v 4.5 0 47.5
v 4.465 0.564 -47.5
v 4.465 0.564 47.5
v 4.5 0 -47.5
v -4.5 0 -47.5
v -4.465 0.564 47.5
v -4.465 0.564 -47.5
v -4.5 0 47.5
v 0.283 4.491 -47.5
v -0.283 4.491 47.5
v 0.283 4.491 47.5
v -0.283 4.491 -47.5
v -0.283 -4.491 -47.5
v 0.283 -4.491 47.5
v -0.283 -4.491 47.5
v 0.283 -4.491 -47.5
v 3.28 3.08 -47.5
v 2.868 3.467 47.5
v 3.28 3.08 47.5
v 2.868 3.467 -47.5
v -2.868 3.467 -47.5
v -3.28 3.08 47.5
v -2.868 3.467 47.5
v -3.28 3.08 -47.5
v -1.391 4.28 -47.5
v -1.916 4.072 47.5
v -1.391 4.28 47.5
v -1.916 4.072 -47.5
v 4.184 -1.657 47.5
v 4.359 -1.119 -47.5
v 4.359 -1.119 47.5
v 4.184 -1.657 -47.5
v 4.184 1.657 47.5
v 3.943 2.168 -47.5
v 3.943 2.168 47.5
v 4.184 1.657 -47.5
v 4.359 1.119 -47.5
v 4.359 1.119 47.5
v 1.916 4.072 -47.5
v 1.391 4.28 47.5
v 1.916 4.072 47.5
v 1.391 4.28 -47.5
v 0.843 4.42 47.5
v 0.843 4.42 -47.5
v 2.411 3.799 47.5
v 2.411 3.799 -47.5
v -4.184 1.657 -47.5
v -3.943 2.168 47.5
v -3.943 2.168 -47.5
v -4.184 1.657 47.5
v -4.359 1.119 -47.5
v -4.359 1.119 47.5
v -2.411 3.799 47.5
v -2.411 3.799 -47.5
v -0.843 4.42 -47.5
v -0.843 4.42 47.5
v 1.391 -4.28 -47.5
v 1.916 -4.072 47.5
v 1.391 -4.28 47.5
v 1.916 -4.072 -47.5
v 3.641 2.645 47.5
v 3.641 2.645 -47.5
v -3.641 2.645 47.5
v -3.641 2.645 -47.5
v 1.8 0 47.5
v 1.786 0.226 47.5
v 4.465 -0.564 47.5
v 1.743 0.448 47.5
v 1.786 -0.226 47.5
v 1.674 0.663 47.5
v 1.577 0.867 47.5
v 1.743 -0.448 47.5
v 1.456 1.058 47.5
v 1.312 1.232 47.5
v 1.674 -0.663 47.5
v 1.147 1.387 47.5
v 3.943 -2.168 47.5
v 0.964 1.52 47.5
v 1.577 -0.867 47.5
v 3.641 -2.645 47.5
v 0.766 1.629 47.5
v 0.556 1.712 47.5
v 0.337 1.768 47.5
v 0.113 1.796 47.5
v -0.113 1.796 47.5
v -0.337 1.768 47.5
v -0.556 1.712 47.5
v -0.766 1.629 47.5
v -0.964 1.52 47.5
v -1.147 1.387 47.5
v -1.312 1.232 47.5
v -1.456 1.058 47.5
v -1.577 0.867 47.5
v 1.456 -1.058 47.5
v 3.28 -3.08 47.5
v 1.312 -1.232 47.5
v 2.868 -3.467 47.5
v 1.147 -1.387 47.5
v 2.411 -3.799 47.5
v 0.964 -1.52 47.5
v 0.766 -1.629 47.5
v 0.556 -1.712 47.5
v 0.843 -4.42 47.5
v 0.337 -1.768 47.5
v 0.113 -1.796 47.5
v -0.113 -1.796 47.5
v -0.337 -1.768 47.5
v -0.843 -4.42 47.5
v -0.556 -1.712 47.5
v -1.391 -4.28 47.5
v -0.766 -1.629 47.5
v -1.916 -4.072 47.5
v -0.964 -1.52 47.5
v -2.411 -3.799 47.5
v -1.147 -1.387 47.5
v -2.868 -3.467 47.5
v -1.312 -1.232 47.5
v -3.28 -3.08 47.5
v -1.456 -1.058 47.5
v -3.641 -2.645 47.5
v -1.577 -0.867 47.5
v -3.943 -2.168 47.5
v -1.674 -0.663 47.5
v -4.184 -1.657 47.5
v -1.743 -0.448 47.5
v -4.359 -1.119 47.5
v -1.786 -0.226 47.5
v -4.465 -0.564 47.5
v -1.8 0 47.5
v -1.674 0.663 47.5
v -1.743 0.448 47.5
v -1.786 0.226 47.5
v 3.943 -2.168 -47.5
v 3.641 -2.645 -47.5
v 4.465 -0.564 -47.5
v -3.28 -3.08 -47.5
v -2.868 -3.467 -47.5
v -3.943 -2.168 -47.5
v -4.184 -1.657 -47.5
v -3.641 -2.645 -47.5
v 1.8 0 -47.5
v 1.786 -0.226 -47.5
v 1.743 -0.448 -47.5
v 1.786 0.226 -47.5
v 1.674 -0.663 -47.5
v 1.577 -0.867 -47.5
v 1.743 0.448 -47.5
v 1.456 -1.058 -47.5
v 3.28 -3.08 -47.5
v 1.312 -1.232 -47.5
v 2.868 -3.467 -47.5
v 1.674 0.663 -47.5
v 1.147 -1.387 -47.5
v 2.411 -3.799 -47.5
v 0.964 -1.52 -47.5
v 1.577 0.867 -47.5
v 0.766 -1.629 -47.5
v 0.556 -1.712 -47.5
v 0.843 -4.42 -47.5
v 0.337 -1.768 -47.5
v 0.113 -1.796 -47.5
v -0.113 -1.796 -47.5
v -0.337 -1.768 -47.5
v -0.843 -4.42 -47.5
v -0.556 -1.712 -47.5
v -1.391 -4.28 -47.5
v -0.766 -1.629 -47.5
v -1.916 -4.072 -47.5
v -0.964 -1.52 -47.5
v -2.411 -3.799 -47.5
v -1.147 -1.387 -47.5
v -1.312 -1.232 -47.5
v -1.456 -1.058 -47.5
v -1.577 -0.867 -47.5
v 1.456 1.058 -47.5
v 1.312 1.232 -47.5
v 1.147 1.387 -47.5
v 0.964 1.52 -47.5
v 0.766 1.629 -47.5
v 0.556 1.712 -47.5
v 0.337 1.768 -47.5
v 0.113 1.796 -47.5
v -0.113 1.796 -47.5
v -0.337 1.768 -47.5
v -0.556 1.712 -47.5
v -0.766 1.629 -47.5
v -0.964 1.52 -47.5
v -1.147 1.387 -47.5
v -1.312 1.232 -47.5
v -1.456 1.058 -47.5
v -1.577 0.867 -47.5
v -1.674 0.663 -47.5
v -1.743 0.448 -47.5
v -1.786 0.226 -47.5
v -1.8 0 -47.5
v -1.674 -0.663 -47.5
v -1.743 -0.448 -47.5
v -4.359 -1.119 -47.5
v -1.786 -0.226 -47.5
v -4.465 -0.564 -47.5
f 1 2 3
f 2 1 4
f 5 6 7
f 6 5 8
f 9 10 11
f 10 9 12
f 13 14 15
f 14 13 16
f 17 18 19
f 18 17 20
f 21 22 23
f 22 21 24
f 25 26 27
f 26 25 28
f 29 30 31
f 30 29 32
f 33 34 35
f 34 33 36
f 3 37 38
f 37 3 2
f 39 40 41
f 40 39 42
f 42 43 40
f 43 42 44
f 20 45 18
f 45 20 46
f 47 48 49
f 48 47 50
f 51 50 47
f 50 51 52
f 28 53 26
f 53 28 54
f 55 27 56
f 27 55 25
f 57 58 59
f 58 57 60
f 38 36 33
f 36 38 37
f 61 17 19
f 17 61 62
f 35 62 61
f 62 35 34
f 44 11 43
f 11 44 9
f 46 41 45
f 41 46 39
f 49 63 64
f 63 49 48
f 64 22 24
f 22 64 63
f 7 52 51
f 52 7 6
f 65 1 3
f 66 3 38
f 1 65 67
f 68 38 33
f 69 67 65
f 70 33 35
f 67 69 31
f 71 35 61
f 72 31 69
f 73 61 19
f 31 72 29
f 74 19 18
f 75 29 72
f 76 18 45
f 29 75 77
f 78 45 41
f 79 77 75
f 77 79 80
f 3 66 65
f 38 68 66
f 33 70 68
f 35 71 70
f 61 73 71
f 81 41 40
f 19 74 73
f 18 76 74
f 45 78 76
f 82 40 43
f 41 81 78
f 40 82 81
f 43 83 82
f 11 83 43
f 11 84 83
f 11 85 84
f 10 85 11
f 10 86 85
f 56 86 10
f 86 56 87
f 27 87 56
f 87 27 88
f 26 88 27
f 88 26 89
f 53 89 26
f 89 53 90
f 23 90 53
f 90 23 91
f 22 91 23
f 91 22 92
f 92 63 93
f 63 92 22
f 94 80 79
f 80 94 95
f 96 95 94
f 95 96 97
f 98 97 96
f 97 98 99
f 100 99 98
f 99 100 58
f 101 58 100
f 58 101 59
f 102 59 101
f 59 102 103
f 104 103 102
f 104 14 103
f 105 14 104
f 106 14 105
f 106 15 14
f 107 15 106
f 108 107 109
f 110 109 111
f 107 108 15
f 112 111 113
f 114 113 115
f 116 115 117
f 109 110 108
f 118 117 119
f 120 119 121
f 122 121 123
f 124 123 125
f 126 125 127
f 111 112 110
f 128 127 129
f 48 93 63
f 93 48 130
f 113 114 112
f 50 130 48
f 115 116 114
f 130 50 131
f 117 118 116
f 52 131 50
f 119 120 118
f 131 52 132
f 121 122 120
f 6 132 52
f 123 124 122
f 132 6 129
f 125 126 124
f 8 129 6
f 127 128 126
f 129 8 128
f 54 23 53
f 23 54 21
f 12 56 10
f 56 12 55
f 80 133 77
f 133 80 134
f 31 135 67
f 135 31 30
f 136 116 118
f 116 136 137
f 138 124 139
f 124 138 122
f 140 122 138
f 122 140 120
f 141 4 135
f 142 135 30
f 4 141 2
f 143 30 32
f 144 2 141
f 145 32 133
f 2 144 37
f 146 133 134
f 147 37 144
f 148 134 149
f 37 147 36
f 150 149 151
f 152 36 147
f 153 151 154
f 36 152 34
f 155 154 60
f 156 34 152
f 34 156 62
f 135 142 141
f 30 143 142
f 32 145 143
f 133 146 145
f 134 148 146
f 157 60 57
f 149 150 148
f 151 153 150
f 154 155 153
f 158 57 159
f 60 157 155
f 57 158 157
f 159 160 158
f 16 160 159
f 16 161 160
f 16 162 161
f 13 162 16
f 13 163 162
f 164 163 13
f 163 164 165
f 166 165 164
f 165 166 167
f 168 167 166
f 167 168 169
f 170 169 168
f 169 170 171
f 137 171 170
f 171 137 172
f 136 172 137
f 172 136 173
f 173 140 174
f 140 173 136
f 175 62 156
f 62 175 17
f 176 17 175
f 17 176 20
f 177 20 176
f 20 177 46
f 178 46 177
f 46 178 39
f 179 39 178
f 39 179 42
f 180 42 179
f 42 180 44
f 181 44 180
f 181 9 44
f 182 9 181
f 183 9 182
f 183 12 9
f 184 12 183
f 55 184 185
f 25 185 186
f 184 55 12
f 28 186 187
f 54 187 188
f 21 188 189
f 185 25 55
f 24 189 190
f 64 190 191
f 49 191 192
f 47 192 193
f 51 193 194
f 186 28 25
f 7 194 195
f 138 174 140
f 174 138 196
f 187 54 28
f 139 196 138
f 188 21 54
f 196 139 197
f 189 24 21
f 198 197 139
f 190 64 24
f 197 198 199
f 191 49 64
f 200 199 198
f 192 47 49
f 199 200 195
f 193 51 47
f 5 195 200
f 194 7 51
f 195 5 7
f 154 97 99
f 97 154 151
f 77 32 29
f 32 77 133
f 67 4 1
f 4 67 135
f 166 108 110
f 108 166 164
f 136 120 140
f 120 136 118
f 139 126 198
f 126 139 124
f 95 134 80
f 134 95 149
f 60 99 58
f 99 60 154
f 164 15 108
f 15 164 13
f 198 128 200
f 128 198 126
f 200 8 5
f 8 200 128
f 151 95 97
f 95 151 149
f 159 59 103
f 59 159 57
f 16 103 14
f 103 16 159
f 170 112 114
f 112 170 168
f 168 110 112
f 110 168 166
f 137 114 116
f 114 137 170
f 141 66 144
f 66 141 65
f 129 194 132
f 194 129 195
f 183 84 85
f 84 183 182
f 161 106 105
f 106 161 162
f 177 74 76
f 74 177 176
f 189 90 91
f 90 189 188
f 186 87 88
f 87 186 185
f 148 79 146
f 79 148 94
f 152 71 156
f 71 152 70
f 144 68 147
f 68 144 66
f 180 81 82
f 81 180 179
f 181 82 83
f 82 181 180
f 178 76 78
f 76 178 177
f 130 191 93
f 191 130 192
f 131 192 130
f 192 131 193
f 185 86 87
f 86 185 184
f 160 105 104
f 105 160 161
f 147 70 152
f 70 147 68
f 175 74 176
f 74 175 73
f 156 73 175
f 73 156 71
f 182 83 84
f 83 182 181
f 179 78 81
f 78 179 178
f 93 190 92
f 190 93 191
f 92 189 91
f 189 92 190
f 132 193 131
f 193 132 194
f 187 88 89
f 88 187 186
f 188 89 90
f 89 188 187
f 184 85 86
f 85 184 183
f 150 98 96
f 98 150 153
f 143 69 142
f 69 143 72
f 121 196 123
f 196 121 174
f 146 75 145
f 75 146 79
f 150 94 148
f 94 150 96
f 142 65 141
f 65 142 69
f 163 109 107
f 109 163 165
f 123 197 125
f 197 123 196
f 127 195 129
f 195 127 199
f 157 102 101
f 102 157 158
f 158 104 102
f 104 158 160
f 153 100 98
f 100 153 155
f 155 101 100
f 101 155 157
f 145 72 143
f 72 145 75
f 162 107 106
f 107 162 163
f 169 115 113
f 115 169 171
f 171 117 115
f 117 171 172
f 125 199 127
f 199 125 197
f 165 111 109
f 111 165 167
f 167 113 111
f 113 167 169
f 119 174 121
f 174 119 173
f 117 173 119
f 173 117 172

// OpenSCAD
$fn = 50;


difference() {
	union() {
		translate(v = [0, 0, -47.5000000000]) {
			cylinder(h = 95, r = 4.5000000000);
		}
	}
	union() {
		translate(v = [0, 0, -100.0000000000]) {
			cylinder(h = 200, r = 1.8000000000);
		}
	}
}
